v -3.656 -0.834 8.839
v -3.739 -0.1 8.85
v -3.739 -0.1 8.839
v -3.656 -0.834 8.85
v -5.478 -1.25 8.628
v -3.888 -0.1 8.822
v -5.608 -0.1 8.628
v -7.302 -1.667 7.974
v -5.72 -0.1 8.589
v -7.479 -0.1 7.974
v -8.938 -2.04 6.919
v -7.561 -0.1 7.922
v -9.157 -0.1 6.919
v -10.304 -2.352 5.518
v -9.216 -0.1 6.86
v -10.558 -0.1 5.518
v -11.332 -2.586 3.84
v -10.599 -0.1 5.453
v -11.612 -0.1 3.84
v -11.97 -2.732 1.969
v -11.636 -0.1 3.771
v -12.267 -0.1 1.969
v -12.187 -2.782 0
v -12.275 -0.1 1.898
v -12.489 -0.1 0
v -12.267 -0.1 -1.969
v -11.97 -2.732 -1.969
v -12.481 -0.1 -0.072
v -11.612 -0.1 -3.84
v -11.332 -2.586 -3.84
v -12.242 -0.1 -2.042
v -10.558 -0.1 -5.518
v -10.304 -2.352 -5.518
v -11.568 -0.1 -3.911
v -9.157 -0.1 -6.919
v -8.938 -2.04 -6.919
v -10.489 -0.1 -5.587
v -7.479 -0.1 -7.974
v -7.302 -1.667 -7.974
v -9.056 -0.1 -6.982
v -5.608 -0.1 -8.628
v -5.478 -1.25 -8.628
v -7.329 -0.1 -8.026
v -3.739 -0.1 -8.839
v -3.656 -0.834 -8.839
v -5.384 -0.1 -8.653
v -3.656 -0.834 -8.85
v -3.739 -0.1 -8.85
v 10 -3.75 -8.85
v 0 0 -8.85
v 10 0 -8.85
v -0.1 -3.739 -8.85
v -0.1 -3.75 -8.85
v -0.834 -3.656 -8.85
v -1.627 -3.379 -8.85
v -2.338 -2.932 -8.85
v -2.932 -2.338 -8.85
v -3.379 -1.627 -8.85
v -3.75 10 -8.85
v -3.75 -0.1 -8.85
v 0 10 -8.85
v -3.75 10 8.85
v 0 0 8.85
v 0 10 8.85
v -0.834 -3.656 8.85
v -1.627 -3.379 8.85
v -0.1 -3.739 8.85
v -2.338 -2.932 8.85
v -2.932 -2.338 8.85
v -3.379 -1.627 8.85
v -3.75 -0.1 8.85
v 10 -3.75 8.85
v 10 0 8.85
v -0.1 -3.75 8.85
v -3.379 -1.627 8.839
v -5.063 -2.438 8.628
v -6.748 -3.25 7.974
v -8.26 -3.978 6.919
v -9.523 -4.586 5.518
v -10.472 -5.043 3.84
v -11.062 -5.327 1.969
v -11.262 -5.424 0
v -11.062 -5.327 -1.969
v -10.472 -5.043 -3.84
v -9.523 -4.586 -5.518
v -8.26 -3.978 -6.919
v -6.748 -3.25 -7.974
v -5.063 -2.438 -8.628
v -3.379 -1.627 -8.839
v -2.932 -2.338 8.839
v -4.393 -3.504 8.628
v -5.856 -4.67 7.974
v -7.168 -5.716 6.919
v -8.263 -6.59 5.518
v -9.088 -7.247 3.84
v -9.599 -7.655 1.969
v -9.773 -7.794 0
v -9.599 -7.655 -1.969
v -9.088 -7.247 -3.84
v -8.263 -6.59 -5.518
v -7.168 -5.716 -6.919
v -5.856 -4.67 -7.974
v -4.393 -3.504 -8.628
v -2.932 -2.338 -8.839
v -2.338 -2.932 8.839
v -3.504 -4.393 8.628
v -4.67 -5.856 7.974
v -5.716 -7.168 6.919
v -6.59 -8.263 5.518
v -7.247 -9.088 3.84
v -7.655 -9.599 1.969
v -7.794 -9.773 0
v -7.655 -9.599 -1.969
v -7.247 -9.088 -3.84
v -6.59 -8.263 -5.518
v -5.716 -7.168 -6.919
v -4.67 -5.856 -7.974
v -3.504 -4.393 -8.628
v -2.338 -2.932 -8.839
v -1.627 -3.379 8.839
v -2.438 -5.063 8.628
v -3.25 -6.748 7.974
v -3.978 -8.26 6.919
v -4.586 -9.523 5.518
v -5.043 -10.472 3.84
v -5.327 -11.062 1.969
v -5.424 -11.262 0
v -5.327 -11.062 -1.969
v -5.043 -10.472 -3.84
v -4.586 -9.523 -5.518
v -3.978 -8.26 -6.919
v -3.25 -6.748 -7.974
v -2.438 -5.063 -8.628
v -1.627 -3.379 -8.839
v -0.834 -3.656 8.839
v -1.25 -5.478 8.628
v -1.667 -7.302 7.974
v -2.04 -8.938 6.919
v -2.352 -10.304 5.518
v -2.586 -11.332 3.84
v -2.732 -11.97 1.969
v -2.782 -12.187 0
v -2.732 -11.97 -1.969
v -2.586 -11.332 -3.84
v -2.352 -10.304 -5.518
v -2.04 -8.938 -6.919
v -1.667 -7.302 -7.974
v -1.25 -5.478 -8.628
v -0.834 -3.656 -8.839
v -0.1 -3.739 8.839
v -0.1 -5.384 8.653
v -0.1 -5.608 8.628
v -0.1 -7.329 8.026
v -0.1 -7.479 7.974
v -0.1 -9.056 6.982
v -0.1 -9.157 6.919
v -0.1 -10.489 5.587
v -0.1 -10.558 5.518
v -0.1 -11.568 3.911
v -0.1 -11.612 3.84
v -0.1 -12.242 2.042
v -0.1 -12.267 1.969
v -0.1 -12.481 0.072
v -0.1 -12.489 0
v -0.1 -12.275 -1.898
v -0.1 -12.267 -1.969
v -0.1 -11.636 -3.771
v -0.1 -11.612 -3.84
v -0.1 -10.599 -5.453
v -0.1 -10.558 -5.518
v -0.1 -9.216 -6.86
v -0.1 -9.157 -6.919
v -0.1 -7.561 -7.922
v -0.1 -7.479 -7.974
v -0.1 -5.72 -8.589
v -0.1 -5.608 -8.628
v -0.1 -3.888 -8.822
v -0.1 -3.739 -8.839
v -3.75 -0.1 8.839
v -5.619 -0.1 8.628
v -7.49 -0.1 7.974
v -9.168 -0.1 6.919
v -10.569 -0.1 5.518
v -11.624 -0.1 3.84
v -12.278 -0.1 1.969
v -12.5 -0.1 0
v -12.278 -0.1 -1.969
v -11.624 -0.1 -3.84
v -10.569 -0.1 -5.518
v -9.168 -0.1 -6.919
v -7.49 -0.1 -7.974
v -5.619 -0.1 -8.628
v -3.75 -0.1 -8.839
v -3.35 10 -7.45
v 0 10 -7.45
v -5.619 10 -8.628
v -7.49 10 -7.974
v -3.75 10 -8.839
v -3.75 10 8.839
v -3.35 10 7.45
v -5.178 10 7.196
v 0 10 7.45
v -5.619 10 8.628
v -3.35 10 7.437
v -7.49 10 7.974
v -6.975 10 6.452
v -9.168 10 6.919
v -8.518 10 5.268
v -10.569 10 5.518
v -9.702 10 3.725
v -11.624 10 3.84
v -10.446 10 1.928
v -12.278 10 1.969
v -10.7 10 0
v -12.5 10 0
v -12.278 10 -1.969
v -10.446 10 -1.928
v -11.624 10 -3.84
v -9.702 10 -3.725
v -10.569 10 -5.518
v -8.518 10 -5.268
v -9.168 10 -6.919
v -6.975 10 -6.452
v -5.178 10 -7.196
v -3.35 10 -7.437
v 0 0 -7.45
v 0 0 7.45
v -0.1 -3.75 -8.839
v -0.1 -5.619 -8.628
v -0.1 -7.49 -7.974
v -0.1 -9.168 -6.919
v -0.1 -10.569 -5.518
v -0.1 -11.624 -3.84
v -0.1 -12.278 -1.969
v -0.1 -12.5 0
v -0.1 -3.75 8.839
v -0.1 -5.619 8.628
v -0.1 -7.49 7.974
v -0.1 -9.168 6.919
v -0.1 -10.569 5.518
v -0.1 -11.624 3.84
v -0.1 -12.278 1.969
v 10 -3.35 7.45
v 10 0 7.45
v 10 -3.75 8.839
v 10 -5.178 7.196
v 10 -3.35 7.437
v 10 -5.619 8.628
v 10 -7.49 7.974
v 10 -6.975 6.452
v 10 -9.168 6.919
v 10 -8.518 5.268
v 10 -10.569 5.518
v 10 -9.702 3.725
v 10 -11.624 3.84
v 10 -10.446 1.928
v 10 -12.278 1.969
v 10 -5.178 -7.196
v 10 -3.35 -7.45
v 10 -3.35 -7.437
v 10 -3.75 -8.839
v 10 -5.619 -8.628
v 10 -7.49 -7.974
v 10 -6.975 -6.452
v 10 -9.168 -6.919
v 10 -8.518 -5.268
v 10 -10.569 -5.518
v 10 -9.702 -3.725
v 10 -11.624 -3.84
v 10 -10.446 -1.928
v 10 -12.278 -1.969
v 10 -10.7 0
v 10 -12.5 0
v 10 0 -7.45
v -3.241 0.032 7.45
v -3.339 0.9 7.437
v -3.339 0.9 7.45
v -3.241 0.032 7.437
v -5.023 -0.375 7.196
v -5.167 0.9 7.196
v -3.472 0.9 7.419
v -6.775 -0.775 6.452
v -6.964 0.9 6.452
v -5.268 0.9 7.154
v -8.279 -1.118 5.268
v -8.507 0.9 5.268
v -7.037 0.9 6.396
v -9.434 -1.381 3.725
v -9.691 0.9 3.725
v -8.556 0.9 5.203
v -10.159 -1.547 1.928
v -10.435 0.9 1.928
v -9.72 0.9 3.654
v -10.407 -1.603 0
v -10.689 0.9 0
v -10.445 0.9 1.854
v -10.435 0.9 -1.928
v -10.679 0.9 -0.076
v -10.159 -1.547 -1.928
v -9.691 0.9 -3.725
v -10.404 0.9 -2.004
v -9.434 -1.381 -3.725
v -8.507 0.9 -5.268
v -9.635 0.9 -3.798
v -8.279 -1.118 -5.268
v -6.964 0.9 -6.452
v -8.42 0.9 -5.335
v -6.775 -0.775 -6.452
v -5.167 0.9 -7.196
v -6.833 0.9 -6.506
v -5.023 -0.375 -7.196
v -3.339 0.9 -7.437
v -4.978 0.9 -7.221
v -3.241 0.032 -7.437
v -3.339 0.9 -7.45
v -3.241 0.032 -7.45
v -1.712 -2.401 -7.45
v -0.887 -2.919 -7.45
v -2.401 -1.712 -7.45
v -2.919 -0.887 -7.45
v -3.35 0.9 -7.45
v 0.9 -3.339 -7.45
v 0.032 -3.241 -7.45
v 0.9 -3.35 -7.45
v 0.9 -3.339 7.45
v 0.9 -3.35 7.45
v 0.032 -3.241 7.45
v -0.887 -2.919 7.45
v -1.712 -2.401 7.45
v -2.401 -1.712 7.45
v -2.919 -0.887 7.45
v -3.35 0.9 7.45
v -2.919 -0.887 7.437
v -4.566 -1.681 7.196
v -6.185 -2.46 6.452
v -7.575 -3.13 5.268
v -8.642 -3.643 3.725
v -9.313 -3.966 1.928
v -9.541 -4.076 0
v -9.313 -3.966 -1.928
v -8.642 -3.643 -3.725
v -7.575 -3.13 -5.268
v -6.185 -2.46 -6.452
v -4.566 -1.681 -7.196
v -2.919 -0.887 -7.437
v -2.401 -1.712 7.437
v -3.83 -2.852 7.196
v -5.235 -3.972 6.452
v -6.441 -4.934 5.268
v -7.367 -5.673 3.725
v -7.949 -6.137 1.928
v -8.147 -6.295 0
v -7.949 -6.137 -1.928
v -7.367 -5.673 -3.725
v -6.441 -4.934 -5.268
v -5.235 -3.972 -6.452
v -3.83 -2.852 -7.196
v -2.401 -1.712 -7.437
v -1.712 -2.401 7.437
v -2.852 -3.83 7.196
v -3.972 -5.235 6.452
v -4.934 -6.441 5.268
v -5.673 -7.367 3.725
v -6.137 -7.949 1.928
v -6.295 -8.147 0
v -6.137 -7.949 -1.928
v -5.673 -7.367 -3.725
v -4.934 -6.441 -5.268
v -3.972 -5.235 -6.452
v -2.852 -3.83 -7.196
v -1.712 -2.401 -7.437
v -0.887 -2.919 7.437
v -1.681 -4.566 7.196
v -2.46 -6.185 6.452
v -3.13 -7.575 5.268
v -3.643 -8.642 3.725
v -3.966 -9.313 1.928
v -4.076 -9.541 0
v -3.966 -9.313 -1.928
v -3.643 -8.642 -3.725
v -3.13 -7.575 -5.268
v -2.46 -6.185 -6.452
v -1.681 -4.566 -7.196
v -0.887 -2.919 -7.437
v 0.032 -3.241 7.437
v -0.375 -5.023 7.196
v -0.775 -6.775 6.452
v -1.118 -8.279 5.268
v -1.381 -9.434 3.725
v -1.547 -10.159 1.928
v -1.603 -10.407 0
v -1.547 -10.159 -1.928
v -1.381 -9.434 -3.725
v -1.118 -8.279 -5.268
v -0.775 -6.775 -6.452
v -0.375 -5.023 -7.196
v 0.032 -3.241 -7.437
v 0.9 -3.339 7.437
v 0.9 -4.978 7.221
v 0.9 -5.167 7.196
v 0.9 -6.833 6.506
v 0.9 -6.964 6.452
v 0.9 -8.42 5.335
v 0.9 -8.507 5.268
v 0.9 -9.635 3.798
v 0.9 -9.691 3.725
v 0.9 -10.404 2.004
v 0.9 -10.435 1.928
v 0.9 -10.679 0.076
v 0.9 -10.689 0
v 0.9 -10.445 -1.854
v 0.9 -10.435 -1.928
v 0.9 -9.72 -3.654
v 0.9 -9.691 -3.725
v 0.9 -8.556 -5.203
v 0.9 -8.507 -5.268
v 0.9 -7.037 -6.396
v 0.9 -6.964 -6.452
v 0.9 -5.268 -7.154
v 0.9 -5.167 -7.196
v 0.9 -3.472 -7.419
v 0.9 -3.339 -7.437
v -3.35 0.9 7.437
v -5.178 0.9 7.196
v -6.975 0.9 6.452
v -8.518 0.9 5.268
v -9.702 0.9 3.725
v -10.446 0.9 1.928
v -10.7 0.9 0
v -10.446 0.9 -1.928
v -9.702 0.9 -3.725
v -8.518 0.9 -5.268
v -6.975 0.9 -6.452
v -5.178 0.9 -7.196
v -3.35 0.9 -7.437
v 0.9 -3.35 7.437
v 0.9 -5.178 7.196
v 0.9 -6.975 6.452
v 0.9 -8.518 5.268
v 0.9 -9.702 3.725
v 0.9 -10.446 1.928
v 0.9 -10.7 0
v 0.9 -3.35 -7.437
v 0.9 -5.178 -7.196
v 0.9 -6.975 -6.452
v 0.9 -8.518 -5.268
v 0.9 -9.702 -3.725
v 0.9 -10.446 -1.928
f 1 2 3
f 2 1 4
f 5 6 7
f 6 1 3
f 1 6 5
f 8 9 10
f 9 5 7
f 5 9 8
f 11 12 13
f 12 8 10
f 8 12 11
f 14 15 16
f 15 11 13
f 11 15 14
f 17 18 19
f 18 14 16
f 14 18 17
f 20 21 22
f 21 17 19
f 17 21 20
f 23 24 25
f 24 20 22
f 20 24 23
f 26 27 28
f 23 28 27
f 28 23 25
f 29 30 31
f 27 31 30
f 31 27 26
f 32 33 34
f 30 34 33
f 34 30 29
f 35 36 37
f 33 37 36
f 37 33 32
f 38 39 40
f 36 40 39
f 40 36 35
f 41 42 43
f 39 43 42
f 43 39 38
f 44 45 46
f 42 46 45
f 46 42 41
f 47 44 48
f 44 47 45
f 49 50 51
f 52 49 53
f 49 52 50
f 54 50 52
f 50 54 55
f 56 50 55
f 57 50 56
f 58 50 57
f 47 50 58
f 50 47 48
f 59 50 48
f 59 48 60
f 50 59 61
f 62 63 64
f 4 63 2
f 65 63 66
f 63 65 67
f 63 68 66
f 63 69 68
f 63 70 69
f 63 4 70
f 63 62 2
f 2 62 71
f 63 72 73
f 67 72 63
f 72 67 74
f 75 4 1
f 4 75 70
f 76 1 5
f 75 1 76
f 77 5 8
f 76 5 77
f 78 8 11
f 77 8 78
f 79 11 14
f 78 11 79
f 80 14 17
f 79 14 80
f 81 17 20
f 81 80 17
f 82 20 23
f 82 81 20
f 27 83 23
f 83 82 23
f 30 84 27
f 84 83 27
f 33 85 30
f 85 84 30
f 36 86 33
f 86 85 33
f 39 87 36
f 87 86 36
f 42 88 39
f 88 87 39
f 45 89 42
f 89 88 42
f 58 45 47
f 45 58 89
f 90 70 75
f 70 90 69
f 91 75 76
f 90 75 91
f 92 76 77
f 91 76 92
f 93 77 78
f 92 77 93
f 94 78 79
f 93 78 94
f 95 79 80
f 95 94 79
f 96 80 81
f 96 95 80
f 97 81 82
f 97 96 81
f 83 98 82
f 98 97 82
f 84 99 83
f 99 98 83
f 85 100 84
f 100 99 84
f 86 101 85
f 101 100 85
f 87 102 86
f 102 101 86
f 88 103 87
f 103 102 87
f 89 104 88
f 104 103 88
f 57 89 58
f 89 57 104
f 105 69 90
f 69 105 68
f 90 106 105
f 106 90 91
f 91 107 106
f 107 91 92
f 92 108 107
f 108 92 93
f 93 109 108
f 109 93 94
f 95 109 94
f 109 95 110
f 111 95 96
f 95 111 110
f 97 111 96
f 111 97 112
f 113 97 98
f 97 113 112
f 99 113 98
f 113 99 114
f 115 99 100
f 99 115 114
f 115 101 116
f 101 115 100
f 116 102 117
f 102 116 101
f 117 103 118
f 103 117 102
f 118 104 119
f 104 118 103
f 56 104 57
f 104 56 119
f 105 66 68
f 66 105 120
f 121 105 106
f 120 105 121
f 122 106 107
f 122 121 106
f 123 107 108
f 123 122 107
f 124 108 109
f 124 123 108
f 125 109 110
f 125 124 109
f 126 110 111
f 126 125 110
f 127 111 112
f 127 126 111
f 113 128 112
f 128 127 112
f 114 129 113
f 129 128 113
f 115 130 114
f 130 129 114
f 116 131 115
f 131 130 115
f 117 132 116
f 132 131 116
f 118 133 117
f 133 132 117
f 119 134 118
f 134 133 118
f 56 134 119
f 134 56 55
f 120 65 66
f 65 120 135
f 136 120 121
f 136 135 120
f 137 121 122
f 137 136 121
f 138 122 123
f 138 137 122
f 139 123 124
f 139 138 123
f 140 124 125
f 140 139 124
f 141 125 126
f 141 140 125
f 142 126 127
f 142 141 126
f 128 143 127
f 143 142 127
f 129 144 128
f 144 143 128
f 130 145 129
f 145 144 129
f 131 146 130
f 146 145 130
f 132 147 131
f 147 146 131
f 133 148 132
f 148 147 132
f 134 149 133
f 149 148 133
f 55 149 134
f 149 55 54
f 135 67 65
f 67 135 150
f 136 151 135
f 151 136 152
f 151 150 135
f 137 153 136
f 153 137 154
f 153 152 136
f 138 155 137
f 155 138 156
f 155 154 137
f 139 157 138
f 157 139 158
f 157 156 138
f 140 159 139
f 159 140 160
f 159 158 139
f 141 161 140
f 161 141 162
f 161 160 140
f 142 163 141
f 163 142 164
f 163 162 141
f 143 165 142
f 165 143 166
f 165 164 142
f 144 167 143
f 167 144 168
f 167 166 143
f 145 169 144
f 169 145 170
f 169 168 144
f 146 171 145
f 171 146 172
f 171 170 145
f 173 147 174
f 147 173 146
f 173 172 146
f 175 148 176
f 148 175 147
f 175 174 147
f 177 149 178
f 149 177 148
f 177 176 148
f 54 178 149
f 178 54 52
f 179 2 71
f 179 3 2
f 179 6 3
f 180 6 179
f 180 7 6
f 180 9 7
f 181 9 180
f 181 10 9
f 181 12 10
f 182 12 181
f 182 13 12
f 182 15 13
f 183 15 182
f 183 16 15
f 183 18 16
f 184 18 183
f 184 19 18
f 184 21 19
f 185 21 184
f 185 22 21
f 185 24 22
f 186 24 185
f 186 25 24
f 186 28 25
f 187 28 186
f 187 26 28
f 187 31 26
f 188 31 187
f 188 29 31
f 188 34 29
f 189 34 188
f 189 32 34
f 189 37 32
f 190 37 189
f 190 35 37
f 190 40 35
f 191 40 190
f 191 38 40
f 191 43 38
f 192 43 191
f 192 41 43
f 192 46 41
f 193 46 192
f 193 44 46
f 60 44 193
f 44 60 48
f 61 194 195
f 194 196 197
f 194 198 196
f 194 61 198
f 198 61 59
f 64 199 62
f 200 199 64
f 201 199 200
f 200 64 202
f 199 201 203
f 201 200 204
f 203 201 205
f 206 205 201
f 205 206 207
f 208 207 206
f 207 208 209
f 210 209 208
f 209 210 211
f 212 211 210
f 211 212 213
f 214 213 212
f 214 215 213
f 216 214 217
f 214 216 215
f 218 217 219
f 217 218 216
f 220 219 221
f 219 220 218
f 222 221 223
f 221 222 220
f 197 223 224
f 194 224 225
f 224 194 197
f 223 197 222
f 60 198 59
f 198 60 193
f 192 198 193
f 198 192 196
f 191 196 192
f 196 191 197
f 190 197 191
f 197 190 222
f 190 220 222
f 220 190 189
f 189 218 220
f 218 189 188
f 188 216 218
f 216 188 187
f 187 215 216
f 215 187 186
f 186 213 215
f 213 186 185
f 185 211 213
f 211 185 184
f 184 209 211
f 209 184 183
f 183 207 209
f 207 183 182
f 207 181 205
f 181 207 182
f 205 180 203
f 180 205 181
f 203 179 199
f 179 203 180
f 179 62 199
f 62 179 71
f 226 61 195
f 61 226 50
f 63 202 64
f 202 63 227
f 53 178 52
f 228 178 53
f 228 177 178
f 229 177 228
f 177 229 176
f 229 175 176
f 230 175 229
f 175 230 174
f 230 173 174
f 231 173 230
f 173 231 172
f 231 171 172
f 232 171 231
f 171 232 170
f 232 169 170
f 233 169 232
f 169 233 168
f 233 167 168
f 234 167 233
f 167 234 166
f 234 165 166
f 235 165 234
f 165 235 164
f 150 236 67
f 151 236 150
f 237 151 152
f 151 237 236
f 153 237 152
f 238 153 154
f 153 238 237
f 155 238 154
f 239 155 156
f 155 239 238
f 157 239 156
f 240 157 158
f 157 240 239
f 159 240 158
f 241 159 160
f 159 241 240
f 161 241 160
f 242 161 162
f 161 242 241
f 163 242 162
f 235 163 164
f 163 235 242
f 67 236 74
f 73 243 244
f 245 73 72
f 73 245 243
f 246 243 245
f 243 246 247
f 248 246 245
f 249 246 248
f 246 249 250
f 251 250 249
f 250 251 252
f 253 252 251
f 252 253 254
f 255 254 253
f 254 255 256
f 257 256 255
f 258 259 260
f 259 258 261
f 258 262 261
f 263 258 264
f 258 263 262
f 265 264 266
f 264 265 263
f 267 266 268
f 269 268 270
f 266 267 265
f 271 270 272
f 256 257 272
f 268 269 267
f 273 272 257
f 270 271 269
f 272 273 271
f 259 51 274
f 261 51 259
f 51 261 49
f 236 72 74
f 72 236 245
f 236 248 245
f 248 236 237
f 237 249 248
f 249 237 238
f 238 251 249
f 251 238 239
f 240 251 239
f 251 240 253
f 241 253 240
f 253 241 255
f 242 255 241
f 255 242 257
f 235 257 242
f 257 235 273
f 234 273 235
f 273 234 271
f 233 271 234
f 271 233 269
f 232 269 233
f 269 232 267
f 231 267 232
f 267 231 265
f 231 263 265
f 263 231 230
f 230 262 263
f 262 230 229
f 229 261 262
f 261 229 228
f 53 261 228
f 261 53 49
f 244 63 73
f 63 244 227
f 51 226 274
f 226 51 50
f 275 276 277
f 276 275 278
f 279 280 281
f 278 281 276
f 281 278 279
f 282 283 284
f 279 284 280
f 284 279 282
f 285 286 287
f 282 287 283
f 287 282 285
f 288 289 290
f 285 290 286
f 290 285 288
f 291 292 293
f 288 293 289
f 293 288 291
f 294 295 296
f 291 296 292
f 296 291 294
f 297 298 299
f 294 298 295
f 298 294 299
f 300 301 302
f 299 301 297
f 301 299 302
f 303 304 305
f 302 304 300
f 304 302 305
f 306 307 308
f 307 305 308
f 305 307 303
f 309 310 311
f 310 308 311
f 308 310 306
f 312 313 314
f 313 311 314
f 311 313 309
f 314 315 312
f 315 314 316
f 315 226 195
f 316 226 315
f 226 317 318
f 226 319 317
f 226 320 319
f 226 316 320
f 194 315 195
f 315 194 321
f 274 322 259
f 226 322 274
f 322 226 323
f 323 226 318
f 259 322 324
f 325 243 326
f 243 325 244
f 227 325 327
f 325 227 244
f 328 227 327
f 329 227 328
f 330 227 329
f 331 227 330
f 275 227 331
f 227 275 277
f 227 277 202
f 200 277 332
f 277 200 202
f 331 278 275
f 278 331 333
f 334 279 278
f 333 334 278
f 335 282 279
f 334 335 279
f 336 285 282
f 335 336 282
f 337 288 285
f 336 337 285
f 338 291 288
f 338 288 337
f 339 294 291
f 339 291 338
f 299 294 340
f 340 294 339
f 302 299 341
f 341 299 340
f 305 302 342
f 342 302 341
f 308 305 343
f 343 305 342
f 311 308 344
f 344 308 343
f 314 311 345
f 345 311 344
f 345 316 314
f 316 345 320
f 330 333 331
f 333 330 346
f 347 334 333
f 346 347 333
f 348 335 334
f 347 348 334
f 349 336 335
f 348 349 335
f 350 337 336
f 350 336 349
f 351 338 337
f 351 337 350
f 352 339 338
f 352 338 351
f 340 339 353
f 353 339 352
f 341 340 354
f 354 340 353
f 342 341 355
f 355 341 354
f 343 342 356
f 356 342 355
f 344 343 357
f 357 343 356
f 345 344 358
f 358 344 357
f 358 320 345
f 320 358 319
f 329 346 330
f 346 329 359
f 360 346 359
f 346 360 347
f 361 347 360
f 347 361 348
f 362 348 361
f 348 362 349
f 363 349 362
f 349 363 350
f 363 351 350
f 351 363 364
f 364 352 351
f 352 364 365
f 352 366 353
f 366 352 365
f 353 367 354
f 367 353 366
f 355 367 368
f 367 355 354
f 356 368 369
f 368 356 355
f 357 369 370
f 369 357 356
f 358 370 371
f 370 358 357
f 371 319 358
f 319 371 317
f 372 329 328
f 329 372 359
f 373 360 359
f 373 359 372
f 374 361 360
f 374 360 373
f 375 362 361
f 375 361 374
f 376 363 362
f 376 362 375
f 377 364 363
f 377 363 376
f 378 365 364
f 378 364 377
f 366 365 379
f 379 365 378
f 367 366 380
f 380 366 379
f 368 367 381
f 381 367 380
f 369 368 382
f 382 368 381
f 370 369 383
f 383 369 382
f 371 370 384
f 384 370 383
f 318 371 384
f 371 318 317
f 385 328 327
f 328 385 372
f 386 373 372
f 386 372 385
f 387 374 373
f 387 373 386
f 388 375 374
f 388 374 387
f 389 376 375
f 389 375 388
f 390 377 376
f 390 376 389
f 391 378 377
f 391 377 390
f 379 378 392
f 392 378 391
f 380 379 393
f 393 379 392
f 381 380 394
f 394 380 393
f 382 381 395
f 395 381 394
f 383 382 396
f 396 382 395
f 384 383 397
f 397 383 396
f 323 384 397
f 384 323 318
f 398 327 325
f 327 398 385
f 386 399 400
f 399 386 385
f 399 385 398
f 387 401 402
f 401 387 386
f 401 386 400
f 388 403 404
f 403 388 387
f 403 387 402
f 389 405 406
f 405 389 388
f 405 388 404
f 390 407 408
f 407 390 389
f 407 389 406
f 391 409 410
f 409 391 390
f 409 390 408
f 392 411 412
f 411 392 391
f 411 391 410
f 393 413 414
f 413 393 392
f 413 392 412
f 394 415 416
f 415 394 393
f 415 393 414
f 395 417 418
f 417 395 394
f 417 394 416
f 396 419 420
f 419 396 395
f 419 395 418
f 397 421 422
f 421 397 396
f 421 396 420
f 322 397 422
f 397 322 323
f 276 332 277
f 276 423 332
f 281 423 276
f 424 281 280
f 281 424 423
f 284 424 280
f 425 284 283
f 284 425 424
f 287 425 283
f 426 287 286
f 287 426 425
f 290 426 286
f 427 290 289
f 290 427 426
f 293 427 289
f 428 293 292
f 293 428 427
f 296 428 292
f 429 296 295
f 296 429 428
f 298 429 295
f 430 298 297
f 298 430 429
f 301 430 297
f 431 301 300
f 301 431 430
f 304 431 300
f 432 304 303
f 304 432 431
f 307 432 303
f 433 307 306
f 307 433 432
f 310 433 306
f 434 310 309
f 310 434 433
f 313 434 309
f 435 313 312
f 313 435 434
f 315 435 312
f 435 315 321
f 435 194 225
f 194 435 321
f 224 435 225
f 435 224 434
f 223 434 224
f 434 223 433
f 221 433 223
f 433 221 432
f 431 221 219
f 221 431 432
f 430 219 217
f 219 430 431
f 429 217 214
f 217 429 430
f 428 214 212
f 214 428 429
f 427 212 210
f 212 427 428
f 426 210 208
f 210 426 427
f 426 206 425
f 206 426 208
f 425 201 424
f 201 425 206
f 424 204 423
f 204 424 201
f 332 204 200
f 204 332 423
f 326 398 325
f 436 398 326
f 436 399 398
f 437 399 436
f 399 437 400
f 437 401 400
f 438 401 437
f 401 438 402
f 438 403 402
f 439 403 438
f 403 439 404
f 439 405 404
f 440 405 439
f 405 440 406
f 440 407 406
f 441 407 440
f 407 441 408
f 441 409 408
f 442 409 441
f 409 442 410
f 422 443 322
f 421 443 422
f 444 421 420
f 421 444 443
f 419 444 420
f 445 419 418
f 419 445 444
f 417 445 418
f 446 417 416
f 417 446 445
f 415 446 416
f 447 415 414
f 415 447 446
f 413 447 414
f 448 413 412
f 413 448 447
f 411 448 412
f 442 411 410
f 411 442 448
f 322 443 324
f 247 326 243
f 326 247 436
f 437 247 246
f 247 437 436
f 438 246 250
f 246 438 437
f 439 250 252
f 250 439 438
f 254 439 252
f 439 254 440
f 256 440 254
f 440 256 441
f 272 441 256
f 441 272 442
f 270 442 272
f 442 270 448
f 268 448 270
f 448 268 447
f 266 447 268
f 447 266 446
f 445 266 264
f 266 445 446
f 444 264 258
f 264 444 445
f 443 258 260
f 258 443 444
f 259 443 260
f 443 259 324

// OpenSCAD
or=14.7/2;
oh=10.5-or-1;

ir=11.8/2;
ih=7.4-ir+2.4-1;

//molding_y90(or=or,oh=oh,ir=ir,ih=ih,l=10);
molding_z90(or=or,oh=oh,ir=ir,ih=ih,l=10);

module molding_z90(or,oh,ir,ih,l) {
    difference() {
        z90(r=or+1.5,h=oh+1.5,l=l);
        translate([1,1,0]) z90(r=or+0.1,h=oh+2+0.1,l=l+1);
        //translate([0,0,-1]) y90(r=ir,h=ih+1,l=l+0.1,d=or+1-ir);
    }
}

module molding_y90(or,oh,ir,ih,l) {
    difference() {
        y90(r=or+1.5,h=oh+1,l=l);
        translate([0,0,-1]) y90(r=or+0.1,h=oh+2+0.1,l=l+1,d=or+1.5-or-0.1 );
        //translate([0,0,-1]) y90(r=ir,h=ih+1,l=l+0.1,d=or+1-ir);
    }
}

eps=0.1;

module z90(r, h, l=10) {
    rotate_extrude(angle=90)
        hole(r=r,h=h,rot=[0,0,90]);
    
    translate([0,-eps,0]) rotate([-90,0,0]) linear_extrude(l+eps) hole(r=r,h=h,rot=[0,0,90]);
    translate([-eps,0,0]) rotate([90,0,90]) linear_extrude(l+eps) hole(r=r,h=h,rot=[0,0,90]);
}

module y90(r, h, l=10, d=0) {
    rotate_extrude(angle=90) 
        translate([r+d,0,0]) hole(r=r,h=h,rot=[0,0,0]);
    
    translate([d,eps,0]) rotate([-90,180,180]) linear_extrude(l+eps) translate([r,0,0]) hole(r=r,h=h,rot=[0,0,0]);
    translate([eps,d,0]) rotate([90,0,-90]) linear_extrude(l+eps) translate([-r,0,0]) hole(r=r,h=h,rot=[0,0,0]);
}

module hole(r=5, h=3, rot=[0,0,0]) {
    rotate(rot) union() {
        translate([0,h,0]) difference() {
            circle(r);
            translate([0,-(2*r+2)/2,0]) square(2*r+2, center=true);
        }

        translate([0,(h+eps)/2,0]) square([r*2,h+eps],center=true);
    }
}
